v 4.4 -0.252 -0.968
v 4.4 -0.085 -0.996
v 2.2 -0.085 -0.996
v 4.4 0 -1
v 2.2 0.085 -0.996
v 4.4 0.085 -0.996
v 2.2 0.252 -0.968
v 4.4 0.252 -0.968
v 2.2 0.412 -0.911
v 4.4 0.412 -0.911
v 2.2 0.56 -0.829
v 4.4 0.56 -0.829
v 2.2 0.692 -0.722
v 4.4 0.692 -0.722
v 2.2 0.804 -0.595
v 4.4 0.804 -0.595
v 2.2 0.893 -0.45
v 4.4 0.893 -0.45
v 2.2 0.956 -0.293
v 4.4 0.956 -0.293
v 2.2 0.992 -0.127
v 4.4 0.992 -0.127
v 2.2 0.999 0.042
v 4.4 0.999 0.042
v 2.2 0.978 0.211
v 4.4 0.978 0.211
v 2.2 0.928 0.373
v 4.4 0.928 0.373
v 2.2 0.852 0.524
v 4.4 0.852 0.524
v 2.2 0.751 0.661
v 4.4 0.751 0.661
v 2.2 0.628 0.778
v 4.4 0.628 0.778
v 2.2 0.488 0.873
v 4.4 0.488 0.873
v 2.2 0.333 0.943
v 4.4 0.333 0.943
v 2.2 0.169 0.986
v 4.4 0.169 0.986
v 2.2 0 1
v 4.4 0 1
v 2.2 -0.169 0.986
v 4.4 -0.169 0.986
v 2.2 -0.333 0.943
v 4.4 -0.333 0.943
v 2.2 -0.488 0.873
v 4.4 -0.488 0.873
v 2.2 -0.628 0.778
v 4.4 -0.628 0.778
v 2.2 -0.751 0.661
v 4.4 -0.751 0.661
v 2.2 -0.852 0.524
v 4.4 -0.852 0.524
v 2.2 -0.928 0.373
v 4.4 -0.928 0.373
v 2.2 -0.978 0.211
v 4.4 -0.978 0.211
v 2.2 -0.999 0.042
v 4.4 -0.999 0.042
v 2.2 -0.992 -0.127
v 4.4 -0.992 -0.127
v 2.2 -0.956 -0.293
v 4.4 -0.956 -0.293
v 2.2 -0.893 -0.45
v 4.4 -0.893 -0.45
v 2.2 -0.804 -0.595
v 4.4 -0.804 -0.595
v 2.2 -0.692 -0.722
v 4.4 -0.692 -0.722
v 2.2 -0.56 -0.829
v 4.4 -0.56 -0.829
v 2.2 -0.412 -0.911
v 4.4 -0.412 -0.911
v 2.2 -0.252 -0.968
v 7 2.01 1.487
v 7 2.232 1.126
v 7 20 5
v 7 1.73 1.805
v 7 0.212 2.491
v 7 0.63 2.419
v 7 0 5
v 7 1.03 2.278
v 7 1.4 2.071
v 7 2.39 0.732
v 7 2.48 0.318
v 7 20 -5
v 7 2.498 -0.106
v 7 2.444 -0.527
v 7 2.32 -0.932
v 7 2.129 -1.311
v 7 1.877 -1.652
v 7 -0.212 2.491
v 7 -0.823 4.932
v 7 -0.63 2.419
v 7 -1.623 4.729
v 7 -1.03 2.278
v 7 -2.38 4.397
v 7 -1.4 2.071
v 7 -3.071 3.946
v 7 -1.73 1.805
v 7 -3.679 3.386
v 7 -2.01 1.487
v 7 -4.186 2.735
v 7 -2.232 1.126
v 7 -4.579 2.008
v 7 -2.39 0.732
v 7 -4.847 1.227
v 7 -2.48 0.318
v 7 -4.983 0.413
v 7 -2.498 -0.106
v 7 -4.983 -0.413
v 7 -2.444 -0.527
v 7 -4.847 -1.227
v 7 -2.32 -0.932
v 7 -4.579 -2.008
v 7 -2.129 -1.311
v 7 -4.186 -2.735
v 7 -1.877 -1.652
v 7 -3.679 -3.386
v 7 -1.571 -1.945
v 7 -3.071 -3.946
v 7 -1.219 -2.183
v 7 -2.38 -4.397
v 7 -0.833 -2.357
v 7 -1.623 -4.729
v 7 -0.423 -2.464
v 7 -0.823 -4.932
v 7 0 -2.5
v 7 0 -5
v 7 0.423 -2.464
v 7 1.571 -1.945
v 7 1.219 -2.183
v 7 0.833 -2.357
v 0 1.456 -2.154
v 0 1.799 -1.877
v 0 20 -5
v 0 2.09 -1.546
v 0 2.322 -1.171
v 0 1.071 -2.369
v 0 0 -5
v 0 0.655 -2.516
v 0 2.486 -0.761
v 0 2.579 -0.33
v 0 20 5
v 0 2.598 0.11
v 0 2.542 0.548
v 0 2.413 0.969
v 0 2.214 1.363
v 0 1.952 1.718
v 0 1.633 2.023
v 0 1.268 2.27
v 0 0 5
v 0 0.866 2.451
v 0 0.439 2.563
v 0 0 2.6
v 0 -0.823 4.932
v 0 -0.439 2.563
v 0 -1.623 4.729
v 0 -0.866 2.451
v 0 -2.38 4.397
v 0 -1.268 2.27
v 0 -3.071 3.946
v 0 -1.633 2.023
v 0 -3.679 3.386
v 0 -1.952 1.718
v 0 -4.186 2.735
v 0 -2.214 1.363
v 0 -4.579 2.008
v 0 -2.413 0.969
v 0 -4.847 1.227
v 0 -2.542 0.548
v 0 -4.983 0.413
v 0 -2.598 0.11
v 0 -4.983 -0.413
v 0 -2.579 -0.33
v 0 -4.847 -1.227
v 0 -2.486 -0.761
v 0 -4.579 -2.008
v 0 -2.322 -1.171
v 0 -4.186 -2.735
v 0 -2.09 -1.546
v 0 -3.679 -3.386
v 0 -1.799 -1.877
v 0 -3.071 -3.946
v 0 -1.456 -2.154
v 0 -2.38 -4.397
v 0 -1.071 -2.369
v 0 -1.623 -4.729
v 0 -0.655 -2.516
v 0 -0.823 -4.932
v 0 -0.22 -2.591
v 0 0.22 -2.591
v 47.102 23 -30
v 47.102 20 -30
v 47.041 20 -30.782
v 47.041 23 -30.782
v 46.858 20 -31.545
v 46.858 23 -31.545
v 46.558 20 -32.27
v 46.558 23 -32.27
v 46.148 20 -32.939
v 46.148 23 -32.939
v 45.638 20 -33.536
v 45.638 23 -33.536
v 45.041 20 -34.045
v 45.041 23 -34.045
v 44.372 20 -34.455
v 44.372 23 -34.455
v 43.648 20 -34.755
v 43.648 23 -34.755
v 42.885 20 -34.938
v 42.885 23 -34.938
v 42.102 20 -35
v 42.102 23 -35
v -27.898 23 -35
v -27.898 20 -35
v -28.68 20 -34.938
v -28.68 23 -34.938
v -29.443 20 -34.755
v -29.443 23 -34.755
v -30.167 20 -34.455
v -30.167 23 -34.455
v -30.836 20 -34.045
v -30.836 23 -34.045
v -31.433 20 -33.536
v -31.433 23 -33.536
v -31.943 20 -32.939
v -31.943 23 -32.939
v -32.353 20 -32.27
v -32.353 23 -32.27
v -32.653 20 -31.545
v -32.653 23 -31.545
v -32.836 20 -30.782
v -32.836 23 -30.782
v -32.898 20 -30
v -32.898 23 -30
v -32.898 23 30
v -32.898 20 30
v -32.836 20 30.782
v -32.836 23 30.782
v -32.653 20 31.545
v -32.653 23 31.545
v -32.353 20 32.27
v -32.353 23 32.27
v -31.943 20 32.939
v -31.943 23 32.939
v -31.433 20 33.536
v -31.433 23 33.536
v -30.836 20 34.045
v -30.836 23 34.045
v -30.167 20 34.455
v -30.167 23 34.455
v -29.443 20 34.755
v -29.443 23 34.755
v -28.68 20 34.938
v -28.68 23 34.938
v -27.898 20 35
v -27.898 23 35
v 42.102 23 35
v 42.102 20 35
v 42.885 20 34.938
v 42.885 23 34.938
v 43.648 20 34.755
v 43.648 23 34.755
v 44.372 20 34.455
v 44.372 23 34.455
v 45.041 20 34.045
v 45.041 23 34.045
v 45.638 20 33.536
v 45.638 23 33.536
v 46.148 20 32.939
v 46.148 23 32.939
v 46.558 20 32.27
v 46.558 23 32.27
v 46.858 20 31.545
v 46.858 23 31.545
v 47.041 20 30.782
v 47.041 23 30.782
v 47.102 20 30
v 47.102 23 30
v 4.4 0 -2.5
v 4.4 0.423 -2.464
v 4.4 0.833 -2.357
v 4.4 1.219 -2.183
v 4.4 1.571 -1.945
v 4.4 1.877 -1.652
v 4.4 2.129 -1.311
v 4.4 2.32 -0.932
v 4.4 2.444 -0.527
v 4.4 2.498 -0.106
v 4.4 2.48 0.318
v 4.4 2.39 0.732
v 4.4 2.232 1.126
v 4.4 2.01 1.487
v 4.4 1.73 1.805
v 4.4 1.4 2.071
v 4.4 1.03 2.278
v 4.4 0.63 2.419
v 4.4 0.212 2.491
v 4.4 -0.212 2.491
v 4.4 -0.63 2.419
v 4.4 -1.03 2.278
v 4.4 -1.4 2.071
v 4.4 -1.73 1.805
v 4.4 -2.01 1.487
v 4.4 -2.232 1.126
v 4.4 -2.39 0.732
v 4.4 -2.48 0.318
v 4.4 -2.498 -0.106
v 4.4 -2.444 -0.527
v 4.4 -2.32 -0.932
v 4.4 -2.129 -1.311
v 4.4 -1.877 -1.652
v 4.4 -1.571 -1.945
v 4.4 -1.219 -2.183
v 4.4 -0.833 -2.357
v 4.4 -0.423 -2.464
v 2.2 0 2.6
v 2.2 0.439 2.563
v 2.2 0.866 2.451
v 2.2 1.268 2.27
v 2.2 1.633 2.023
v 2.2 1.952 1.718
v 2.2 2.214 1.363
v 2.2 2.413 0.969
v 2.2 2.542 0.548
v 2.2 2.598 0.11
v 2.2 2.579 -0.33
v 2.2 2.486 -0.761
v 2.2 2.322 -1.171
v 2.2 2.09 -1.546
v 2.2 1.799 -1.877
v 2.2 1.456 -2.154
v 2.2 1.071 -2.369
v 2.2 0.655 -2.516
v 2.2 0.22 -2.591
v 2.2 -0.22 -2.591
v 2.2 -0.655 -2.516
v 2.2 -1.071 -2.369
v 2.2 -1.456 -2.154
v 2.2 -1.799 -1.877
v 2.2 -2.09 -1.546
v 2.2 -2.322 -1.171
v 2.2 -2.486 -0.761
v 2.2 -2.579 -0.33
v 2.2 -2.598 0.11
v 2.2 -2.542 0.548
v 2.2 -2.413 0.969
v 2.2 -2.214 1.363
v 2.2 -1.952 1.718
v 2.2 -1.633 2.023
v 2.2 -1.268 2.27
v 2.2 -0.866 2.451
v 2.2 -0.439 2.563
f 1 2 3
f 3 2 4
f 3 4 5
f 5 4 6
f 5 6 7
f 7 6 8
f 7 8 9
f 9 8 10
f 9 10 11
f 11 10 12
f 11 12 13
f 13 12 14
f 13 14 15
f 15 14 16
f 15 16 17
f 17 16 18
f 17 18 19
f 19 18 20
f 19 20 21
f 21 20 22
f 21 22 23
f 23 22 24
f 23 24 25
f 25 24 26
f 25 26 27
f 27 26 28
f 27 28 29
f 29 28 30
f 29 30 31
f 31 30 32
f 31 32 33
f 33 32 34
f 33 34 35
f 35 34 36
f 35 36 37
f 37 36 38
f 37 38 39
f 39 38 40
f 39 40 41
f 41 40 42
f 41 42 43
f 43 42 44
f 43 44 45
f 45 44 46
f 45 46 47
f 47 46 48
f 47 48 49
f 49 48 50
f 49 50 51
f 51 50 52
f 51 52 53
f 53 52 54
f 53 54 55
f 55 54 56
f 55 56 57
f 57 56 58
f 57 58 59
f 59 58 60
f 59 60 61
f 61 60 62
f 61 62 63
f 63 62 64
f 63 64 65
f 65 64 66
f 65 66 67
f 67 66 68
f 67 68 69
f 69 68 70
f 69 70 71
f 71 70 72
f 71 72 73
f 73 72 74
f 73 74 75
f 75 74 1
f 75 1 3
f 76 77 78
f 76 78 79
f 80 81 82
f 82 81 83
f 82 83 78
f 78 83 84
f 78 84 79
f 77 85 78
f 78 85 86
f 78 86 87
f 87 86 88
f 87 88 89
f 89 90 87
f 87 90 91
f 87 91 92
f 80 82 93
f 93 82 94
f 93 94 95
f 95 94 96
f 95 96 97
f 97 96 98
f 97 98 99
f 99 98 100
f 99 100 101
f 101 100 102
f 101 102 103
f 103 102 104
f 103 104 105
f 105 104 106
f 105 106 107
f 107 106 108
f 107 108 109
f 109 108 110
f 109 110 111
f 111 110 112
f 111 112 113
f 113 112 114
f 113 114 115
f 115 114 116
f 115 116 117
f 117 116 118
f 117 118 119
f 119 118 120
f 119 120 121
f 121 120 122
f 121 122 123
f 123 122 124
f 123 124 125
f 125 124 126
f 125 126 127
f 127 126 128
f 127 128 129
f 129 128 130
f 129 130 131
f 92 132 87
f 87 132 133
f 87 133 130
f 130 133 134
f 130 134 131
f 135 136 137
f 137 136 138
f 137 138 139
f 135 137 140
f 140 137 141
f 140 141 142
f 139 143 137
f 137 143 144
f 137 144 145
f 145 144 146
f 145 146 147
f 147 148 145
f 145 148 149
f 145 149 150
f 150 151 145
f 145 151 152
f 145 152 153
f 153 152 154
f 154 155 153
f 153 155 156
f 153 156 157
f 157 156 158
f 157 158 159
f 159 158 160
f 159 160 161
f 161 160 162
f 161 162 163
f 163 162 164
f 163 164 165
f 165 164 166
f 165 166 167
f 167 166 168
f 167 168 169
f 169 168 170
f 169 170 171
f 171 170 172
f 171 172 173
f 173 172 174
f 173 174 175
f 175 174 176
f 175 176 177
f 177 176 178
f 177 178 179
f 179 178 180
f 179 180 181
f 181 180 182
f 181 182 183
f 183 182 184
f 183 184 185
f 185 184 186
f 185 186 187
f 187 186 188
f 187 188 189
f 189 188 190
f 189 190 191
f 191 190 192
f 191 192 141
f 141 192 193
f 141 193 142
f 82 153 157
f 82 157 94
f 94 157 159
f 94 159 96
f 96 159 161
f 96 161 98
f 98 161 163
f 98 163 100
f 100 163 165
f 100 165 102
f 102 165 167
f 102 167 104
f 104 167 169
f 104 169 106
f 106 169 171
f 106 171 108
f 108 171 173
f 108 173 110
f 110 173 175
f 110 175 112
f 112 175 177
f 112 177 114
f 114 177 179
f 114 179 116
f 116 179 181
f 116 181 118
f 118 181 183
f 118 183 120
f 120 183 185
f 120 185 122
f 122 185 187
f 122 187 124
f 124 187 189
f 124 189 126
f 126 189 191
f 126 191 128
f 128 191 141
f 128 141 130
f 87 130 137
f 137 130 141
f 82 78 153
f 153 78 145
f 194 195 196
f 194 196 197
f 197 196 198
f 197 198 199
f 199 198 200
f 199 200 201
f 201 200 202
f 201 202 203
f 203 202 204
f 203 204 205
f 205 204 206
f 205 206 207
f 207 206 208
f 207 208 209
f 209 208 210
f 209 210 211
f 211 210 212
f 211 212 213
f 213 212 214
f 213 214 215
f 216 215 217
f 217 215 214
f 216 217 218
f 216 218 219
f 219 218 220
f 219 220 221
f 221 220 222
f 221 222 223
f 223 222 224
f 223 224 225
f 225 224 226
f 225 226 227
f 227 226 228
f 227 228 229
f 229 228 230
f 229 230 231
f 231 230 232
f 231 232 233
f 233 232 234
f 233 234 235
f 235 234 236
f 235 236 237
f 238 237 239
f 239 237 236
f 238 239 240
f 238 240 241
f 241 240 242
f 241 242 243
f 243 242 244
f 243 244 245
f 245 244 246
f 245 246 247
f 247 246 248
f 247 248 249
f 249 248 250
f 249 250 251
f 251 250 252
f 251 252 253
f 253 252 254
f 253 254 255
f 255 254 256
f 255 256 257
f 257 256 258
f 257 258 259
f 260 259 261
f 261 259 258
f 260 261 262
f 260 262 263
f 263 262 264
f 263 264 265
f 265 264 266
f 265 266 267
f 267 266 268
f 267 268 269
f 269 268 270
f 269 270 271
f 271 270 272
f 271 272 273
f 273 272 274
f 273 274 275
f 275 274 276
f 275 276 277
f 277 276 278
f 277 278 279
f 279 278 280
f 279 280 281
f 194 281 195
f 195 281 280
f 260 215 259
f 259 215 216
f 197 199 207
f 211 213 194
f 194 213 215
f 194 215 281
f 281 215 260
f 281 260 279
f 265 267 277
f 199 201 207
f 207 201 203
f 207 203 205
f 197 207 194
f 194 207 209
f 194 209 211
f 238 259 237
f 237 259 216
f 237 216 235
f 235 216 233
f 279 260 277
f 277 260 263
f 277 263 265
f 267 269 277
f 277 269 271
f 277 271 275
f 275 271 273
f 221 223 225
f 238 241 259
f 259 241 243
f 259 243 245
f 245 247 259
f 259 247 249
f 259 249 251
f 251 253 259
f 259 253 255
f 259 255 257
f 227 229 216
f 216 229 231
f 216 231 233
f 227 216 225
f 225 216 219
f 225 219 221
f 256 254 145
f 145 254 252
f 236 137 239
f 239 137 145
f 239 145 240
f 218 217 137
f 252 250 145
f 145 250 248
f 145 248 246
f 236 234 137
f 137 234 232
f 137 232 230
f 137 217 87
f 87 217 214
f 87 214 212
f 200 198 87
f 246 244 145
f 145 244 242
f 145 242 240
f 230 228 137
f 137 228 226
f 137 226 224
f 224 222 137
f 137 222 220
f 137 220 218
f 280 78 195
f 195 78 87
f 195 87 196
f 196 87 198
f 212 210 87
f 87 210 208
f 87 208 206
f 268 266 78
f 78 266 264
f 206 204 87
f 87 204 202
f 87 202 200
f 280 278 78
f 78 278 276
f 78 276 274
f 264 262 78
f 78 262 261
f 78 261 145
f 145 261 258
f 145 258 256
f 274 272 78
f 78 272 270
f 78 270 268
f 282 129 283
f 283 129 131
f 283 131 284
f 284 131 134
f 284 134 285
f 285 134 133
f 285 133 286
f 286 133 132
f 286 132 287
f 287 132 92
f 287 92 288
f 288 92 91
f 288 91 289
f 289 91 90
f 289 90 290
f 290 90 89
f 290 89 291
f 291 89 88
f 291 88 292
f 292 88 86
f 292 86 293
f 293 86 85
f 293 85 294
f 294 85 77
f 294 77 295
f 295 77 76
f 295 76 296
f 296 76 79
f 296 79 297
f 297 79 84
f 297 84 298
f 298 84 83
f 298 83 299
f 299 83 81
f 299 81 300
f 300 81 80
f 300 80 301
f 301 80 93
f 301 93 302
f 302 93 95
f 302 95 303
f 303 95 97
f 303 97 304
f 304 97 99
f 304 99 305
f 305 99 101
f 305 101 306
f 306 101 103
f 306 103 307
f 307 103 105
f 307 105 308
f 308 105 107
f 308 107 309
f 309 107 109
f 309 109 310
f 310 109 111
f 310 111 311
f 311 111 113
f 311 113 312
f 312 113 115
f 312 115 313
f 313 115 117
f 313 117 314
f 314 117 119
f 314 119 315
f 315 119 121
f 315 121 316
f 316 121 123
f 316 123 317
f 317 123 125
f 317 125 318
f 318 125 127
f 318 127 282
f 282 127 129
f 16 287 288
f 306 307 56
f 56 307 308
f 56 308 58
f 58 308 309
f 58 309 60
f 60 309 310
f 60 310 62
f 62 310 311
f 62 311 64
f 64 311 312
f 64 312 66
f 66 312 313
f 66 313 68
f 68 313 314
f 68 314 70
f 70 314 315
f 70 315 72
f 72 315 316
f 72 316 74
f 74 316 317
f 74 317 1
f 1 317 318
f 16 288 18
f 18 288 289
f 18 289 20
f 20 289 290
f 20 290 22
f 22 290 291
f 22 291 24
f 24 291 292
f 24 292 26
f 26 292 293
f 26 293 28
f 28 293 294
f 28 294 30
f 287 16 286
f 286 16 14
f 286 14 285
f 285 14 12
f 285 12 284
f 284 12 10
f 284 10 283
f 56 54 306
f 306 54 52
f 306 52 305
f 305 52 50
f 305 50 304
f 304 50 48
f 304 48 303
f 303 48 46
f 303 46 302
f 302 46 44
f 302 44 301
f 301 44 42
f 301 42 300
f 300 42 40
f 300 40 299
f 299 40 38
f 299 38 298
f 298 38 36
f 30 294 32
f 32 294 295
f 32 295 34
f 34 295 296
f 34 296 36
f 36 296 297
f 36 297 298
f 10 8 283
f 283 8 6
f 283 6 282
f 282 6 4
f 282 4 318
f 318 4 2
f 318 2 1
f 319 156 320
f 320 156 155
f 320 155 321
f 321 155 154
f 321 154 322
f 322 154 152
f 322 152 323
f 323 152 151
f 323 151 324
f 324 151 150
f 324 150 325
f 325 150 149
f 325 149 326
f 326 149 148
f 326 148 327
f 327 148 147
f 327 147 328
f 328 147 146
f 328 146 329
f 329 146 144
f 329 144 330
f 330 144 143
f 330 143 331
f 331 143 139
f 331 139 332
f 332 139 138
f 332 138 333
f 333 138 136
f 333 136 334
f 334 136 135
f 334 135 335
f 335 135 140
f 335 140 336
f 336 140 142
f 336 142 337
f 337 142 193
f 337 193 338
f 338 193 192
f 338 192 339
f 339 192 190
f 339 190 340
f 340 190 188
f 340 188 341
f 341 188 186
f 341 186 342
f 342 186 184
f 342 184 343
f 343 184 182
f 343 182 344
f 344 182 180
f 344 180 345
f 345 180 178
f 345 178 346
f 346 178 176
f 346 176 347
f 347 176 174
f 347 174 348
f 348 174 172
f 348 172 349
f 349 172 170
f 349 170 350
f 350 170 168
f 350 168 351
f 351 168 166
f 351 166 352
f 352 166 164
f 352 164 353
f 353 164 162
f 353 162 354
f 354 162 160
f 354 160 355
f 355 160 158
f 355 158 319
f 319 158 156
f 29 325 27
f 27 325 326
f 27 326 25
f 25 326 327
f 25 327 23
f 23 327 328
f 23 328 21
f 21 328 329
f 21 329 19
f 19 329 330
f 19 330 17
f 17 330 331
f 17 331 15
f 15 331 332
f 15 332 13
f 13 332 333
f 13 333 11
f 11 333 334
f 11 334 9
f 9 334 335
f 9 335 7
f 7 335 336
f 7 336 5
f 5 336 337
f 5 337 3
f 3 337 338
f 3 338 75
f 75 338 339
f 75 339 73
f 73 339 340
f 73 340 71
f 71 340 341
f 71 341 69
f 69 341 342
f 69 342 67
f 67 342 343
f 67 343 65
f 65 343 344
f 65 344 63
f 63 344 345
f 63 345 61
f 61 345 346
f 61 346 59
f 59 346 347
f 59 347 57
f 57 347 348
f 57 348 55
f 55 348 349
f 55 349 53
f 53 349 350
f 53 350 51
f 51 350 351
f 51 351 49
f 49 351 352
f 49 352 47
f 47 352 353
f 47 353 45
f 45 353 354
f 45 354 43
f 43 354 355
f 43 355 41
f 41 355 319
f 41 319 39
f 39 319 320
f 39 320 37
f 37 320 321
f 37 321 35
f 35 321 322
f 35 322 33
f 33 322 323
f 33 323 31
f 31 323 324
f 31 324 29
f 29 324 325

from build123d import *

# Parameters (mm, degrees)
CROQUIS2_R              = 1
SALIENTE_EXTRUIR1_DEPTH = 7
SALIENTE_EXTRUIR2_DEPTH = 3
CROQUIS4_R              = 2.5
CORTAR_EXTRUIR1_DEPTH   = 2.6
CROQUIS5_R              = 2.6
CORTAR_EXTRUIR3_DEPTH   = 2.2


with BuildPart() as part:
    # Croquis2 → Saliente-Extruir1 (new body)
    with BuildSketch(Plane(origin=(0, 0, 0), x_dir=(0, 0, -1), z_dir=(1, 0, 0))):
        with BuildLine():
            Line((-5, 0), (-5, 20))
            Line((-5, 20), (5, 20))
            Line((5, 20), (5, 0))
            ThreePointArc((5, 0), (0, -5), (-5, 0))
        make_face()
        Circle(CROQUIS2_R, mode=Mode.SUBTRACT)
    extrude(amount=SALIENTE_EXTRUIR1_DEPTH)

    # Croquis3 → Saliente-Extruir2 (add)
    with BuildSketch(Plane(origin=(0, 20, 0), x_dir=(1, 0, 0), z_dir=(0, 1, 0))):
        with BuildLine():
            Line((-27.897521221, -35), (42.102478779, -35))
            ThreePointArc((42.102478779, -35), (45.638012685, -33.535533906), (47.102478779, -30))
            Line((47.102478779, -30), (47.102478779, 30))
            ThreePointArc((47.102478779, 30), (45.638012685, 33.535533906), (42.102478779, 35))
            Line((42.102478779, 35), (-27.897521221, 35))
            ThreePointArc((-27.897521221, 35), (-31.433055127, 33.535533906), (-32.897521221, 30))
            Line((-32.897521221, 30), (-32.897521221, -30))
            ThreePointArc((-32.897521221, -30), (-31.433055127, -33.535533906), (-27.897521221, -35))
        make_face()
    extrude(amount=SALIENTE_EXTRUIR2_DEPTH)

    # Croquis4 → Cortar-Extruir1 (cut)
    with BuildSketch(Plane(origin=(7, 0, 0), x_dir=(0, 0, -1), z_dir=(1, 0, 0))):
        Circle(CROQUIS4_R)
    extrude(amount=-CORTAR_EXTRUIR1_DEPTH, mode=Mode.SUBTRACT)

    # Croquis5 → Cortar-Extruir3 (cut)
    with BuildSketch(Plane.ZY):
        Circle(CROQUIS5_R)
    extrude(amount=-CORTAR_EXTRUIR3_DEPTH, mode=Mode.SUBTRACT)


solid = part.part
